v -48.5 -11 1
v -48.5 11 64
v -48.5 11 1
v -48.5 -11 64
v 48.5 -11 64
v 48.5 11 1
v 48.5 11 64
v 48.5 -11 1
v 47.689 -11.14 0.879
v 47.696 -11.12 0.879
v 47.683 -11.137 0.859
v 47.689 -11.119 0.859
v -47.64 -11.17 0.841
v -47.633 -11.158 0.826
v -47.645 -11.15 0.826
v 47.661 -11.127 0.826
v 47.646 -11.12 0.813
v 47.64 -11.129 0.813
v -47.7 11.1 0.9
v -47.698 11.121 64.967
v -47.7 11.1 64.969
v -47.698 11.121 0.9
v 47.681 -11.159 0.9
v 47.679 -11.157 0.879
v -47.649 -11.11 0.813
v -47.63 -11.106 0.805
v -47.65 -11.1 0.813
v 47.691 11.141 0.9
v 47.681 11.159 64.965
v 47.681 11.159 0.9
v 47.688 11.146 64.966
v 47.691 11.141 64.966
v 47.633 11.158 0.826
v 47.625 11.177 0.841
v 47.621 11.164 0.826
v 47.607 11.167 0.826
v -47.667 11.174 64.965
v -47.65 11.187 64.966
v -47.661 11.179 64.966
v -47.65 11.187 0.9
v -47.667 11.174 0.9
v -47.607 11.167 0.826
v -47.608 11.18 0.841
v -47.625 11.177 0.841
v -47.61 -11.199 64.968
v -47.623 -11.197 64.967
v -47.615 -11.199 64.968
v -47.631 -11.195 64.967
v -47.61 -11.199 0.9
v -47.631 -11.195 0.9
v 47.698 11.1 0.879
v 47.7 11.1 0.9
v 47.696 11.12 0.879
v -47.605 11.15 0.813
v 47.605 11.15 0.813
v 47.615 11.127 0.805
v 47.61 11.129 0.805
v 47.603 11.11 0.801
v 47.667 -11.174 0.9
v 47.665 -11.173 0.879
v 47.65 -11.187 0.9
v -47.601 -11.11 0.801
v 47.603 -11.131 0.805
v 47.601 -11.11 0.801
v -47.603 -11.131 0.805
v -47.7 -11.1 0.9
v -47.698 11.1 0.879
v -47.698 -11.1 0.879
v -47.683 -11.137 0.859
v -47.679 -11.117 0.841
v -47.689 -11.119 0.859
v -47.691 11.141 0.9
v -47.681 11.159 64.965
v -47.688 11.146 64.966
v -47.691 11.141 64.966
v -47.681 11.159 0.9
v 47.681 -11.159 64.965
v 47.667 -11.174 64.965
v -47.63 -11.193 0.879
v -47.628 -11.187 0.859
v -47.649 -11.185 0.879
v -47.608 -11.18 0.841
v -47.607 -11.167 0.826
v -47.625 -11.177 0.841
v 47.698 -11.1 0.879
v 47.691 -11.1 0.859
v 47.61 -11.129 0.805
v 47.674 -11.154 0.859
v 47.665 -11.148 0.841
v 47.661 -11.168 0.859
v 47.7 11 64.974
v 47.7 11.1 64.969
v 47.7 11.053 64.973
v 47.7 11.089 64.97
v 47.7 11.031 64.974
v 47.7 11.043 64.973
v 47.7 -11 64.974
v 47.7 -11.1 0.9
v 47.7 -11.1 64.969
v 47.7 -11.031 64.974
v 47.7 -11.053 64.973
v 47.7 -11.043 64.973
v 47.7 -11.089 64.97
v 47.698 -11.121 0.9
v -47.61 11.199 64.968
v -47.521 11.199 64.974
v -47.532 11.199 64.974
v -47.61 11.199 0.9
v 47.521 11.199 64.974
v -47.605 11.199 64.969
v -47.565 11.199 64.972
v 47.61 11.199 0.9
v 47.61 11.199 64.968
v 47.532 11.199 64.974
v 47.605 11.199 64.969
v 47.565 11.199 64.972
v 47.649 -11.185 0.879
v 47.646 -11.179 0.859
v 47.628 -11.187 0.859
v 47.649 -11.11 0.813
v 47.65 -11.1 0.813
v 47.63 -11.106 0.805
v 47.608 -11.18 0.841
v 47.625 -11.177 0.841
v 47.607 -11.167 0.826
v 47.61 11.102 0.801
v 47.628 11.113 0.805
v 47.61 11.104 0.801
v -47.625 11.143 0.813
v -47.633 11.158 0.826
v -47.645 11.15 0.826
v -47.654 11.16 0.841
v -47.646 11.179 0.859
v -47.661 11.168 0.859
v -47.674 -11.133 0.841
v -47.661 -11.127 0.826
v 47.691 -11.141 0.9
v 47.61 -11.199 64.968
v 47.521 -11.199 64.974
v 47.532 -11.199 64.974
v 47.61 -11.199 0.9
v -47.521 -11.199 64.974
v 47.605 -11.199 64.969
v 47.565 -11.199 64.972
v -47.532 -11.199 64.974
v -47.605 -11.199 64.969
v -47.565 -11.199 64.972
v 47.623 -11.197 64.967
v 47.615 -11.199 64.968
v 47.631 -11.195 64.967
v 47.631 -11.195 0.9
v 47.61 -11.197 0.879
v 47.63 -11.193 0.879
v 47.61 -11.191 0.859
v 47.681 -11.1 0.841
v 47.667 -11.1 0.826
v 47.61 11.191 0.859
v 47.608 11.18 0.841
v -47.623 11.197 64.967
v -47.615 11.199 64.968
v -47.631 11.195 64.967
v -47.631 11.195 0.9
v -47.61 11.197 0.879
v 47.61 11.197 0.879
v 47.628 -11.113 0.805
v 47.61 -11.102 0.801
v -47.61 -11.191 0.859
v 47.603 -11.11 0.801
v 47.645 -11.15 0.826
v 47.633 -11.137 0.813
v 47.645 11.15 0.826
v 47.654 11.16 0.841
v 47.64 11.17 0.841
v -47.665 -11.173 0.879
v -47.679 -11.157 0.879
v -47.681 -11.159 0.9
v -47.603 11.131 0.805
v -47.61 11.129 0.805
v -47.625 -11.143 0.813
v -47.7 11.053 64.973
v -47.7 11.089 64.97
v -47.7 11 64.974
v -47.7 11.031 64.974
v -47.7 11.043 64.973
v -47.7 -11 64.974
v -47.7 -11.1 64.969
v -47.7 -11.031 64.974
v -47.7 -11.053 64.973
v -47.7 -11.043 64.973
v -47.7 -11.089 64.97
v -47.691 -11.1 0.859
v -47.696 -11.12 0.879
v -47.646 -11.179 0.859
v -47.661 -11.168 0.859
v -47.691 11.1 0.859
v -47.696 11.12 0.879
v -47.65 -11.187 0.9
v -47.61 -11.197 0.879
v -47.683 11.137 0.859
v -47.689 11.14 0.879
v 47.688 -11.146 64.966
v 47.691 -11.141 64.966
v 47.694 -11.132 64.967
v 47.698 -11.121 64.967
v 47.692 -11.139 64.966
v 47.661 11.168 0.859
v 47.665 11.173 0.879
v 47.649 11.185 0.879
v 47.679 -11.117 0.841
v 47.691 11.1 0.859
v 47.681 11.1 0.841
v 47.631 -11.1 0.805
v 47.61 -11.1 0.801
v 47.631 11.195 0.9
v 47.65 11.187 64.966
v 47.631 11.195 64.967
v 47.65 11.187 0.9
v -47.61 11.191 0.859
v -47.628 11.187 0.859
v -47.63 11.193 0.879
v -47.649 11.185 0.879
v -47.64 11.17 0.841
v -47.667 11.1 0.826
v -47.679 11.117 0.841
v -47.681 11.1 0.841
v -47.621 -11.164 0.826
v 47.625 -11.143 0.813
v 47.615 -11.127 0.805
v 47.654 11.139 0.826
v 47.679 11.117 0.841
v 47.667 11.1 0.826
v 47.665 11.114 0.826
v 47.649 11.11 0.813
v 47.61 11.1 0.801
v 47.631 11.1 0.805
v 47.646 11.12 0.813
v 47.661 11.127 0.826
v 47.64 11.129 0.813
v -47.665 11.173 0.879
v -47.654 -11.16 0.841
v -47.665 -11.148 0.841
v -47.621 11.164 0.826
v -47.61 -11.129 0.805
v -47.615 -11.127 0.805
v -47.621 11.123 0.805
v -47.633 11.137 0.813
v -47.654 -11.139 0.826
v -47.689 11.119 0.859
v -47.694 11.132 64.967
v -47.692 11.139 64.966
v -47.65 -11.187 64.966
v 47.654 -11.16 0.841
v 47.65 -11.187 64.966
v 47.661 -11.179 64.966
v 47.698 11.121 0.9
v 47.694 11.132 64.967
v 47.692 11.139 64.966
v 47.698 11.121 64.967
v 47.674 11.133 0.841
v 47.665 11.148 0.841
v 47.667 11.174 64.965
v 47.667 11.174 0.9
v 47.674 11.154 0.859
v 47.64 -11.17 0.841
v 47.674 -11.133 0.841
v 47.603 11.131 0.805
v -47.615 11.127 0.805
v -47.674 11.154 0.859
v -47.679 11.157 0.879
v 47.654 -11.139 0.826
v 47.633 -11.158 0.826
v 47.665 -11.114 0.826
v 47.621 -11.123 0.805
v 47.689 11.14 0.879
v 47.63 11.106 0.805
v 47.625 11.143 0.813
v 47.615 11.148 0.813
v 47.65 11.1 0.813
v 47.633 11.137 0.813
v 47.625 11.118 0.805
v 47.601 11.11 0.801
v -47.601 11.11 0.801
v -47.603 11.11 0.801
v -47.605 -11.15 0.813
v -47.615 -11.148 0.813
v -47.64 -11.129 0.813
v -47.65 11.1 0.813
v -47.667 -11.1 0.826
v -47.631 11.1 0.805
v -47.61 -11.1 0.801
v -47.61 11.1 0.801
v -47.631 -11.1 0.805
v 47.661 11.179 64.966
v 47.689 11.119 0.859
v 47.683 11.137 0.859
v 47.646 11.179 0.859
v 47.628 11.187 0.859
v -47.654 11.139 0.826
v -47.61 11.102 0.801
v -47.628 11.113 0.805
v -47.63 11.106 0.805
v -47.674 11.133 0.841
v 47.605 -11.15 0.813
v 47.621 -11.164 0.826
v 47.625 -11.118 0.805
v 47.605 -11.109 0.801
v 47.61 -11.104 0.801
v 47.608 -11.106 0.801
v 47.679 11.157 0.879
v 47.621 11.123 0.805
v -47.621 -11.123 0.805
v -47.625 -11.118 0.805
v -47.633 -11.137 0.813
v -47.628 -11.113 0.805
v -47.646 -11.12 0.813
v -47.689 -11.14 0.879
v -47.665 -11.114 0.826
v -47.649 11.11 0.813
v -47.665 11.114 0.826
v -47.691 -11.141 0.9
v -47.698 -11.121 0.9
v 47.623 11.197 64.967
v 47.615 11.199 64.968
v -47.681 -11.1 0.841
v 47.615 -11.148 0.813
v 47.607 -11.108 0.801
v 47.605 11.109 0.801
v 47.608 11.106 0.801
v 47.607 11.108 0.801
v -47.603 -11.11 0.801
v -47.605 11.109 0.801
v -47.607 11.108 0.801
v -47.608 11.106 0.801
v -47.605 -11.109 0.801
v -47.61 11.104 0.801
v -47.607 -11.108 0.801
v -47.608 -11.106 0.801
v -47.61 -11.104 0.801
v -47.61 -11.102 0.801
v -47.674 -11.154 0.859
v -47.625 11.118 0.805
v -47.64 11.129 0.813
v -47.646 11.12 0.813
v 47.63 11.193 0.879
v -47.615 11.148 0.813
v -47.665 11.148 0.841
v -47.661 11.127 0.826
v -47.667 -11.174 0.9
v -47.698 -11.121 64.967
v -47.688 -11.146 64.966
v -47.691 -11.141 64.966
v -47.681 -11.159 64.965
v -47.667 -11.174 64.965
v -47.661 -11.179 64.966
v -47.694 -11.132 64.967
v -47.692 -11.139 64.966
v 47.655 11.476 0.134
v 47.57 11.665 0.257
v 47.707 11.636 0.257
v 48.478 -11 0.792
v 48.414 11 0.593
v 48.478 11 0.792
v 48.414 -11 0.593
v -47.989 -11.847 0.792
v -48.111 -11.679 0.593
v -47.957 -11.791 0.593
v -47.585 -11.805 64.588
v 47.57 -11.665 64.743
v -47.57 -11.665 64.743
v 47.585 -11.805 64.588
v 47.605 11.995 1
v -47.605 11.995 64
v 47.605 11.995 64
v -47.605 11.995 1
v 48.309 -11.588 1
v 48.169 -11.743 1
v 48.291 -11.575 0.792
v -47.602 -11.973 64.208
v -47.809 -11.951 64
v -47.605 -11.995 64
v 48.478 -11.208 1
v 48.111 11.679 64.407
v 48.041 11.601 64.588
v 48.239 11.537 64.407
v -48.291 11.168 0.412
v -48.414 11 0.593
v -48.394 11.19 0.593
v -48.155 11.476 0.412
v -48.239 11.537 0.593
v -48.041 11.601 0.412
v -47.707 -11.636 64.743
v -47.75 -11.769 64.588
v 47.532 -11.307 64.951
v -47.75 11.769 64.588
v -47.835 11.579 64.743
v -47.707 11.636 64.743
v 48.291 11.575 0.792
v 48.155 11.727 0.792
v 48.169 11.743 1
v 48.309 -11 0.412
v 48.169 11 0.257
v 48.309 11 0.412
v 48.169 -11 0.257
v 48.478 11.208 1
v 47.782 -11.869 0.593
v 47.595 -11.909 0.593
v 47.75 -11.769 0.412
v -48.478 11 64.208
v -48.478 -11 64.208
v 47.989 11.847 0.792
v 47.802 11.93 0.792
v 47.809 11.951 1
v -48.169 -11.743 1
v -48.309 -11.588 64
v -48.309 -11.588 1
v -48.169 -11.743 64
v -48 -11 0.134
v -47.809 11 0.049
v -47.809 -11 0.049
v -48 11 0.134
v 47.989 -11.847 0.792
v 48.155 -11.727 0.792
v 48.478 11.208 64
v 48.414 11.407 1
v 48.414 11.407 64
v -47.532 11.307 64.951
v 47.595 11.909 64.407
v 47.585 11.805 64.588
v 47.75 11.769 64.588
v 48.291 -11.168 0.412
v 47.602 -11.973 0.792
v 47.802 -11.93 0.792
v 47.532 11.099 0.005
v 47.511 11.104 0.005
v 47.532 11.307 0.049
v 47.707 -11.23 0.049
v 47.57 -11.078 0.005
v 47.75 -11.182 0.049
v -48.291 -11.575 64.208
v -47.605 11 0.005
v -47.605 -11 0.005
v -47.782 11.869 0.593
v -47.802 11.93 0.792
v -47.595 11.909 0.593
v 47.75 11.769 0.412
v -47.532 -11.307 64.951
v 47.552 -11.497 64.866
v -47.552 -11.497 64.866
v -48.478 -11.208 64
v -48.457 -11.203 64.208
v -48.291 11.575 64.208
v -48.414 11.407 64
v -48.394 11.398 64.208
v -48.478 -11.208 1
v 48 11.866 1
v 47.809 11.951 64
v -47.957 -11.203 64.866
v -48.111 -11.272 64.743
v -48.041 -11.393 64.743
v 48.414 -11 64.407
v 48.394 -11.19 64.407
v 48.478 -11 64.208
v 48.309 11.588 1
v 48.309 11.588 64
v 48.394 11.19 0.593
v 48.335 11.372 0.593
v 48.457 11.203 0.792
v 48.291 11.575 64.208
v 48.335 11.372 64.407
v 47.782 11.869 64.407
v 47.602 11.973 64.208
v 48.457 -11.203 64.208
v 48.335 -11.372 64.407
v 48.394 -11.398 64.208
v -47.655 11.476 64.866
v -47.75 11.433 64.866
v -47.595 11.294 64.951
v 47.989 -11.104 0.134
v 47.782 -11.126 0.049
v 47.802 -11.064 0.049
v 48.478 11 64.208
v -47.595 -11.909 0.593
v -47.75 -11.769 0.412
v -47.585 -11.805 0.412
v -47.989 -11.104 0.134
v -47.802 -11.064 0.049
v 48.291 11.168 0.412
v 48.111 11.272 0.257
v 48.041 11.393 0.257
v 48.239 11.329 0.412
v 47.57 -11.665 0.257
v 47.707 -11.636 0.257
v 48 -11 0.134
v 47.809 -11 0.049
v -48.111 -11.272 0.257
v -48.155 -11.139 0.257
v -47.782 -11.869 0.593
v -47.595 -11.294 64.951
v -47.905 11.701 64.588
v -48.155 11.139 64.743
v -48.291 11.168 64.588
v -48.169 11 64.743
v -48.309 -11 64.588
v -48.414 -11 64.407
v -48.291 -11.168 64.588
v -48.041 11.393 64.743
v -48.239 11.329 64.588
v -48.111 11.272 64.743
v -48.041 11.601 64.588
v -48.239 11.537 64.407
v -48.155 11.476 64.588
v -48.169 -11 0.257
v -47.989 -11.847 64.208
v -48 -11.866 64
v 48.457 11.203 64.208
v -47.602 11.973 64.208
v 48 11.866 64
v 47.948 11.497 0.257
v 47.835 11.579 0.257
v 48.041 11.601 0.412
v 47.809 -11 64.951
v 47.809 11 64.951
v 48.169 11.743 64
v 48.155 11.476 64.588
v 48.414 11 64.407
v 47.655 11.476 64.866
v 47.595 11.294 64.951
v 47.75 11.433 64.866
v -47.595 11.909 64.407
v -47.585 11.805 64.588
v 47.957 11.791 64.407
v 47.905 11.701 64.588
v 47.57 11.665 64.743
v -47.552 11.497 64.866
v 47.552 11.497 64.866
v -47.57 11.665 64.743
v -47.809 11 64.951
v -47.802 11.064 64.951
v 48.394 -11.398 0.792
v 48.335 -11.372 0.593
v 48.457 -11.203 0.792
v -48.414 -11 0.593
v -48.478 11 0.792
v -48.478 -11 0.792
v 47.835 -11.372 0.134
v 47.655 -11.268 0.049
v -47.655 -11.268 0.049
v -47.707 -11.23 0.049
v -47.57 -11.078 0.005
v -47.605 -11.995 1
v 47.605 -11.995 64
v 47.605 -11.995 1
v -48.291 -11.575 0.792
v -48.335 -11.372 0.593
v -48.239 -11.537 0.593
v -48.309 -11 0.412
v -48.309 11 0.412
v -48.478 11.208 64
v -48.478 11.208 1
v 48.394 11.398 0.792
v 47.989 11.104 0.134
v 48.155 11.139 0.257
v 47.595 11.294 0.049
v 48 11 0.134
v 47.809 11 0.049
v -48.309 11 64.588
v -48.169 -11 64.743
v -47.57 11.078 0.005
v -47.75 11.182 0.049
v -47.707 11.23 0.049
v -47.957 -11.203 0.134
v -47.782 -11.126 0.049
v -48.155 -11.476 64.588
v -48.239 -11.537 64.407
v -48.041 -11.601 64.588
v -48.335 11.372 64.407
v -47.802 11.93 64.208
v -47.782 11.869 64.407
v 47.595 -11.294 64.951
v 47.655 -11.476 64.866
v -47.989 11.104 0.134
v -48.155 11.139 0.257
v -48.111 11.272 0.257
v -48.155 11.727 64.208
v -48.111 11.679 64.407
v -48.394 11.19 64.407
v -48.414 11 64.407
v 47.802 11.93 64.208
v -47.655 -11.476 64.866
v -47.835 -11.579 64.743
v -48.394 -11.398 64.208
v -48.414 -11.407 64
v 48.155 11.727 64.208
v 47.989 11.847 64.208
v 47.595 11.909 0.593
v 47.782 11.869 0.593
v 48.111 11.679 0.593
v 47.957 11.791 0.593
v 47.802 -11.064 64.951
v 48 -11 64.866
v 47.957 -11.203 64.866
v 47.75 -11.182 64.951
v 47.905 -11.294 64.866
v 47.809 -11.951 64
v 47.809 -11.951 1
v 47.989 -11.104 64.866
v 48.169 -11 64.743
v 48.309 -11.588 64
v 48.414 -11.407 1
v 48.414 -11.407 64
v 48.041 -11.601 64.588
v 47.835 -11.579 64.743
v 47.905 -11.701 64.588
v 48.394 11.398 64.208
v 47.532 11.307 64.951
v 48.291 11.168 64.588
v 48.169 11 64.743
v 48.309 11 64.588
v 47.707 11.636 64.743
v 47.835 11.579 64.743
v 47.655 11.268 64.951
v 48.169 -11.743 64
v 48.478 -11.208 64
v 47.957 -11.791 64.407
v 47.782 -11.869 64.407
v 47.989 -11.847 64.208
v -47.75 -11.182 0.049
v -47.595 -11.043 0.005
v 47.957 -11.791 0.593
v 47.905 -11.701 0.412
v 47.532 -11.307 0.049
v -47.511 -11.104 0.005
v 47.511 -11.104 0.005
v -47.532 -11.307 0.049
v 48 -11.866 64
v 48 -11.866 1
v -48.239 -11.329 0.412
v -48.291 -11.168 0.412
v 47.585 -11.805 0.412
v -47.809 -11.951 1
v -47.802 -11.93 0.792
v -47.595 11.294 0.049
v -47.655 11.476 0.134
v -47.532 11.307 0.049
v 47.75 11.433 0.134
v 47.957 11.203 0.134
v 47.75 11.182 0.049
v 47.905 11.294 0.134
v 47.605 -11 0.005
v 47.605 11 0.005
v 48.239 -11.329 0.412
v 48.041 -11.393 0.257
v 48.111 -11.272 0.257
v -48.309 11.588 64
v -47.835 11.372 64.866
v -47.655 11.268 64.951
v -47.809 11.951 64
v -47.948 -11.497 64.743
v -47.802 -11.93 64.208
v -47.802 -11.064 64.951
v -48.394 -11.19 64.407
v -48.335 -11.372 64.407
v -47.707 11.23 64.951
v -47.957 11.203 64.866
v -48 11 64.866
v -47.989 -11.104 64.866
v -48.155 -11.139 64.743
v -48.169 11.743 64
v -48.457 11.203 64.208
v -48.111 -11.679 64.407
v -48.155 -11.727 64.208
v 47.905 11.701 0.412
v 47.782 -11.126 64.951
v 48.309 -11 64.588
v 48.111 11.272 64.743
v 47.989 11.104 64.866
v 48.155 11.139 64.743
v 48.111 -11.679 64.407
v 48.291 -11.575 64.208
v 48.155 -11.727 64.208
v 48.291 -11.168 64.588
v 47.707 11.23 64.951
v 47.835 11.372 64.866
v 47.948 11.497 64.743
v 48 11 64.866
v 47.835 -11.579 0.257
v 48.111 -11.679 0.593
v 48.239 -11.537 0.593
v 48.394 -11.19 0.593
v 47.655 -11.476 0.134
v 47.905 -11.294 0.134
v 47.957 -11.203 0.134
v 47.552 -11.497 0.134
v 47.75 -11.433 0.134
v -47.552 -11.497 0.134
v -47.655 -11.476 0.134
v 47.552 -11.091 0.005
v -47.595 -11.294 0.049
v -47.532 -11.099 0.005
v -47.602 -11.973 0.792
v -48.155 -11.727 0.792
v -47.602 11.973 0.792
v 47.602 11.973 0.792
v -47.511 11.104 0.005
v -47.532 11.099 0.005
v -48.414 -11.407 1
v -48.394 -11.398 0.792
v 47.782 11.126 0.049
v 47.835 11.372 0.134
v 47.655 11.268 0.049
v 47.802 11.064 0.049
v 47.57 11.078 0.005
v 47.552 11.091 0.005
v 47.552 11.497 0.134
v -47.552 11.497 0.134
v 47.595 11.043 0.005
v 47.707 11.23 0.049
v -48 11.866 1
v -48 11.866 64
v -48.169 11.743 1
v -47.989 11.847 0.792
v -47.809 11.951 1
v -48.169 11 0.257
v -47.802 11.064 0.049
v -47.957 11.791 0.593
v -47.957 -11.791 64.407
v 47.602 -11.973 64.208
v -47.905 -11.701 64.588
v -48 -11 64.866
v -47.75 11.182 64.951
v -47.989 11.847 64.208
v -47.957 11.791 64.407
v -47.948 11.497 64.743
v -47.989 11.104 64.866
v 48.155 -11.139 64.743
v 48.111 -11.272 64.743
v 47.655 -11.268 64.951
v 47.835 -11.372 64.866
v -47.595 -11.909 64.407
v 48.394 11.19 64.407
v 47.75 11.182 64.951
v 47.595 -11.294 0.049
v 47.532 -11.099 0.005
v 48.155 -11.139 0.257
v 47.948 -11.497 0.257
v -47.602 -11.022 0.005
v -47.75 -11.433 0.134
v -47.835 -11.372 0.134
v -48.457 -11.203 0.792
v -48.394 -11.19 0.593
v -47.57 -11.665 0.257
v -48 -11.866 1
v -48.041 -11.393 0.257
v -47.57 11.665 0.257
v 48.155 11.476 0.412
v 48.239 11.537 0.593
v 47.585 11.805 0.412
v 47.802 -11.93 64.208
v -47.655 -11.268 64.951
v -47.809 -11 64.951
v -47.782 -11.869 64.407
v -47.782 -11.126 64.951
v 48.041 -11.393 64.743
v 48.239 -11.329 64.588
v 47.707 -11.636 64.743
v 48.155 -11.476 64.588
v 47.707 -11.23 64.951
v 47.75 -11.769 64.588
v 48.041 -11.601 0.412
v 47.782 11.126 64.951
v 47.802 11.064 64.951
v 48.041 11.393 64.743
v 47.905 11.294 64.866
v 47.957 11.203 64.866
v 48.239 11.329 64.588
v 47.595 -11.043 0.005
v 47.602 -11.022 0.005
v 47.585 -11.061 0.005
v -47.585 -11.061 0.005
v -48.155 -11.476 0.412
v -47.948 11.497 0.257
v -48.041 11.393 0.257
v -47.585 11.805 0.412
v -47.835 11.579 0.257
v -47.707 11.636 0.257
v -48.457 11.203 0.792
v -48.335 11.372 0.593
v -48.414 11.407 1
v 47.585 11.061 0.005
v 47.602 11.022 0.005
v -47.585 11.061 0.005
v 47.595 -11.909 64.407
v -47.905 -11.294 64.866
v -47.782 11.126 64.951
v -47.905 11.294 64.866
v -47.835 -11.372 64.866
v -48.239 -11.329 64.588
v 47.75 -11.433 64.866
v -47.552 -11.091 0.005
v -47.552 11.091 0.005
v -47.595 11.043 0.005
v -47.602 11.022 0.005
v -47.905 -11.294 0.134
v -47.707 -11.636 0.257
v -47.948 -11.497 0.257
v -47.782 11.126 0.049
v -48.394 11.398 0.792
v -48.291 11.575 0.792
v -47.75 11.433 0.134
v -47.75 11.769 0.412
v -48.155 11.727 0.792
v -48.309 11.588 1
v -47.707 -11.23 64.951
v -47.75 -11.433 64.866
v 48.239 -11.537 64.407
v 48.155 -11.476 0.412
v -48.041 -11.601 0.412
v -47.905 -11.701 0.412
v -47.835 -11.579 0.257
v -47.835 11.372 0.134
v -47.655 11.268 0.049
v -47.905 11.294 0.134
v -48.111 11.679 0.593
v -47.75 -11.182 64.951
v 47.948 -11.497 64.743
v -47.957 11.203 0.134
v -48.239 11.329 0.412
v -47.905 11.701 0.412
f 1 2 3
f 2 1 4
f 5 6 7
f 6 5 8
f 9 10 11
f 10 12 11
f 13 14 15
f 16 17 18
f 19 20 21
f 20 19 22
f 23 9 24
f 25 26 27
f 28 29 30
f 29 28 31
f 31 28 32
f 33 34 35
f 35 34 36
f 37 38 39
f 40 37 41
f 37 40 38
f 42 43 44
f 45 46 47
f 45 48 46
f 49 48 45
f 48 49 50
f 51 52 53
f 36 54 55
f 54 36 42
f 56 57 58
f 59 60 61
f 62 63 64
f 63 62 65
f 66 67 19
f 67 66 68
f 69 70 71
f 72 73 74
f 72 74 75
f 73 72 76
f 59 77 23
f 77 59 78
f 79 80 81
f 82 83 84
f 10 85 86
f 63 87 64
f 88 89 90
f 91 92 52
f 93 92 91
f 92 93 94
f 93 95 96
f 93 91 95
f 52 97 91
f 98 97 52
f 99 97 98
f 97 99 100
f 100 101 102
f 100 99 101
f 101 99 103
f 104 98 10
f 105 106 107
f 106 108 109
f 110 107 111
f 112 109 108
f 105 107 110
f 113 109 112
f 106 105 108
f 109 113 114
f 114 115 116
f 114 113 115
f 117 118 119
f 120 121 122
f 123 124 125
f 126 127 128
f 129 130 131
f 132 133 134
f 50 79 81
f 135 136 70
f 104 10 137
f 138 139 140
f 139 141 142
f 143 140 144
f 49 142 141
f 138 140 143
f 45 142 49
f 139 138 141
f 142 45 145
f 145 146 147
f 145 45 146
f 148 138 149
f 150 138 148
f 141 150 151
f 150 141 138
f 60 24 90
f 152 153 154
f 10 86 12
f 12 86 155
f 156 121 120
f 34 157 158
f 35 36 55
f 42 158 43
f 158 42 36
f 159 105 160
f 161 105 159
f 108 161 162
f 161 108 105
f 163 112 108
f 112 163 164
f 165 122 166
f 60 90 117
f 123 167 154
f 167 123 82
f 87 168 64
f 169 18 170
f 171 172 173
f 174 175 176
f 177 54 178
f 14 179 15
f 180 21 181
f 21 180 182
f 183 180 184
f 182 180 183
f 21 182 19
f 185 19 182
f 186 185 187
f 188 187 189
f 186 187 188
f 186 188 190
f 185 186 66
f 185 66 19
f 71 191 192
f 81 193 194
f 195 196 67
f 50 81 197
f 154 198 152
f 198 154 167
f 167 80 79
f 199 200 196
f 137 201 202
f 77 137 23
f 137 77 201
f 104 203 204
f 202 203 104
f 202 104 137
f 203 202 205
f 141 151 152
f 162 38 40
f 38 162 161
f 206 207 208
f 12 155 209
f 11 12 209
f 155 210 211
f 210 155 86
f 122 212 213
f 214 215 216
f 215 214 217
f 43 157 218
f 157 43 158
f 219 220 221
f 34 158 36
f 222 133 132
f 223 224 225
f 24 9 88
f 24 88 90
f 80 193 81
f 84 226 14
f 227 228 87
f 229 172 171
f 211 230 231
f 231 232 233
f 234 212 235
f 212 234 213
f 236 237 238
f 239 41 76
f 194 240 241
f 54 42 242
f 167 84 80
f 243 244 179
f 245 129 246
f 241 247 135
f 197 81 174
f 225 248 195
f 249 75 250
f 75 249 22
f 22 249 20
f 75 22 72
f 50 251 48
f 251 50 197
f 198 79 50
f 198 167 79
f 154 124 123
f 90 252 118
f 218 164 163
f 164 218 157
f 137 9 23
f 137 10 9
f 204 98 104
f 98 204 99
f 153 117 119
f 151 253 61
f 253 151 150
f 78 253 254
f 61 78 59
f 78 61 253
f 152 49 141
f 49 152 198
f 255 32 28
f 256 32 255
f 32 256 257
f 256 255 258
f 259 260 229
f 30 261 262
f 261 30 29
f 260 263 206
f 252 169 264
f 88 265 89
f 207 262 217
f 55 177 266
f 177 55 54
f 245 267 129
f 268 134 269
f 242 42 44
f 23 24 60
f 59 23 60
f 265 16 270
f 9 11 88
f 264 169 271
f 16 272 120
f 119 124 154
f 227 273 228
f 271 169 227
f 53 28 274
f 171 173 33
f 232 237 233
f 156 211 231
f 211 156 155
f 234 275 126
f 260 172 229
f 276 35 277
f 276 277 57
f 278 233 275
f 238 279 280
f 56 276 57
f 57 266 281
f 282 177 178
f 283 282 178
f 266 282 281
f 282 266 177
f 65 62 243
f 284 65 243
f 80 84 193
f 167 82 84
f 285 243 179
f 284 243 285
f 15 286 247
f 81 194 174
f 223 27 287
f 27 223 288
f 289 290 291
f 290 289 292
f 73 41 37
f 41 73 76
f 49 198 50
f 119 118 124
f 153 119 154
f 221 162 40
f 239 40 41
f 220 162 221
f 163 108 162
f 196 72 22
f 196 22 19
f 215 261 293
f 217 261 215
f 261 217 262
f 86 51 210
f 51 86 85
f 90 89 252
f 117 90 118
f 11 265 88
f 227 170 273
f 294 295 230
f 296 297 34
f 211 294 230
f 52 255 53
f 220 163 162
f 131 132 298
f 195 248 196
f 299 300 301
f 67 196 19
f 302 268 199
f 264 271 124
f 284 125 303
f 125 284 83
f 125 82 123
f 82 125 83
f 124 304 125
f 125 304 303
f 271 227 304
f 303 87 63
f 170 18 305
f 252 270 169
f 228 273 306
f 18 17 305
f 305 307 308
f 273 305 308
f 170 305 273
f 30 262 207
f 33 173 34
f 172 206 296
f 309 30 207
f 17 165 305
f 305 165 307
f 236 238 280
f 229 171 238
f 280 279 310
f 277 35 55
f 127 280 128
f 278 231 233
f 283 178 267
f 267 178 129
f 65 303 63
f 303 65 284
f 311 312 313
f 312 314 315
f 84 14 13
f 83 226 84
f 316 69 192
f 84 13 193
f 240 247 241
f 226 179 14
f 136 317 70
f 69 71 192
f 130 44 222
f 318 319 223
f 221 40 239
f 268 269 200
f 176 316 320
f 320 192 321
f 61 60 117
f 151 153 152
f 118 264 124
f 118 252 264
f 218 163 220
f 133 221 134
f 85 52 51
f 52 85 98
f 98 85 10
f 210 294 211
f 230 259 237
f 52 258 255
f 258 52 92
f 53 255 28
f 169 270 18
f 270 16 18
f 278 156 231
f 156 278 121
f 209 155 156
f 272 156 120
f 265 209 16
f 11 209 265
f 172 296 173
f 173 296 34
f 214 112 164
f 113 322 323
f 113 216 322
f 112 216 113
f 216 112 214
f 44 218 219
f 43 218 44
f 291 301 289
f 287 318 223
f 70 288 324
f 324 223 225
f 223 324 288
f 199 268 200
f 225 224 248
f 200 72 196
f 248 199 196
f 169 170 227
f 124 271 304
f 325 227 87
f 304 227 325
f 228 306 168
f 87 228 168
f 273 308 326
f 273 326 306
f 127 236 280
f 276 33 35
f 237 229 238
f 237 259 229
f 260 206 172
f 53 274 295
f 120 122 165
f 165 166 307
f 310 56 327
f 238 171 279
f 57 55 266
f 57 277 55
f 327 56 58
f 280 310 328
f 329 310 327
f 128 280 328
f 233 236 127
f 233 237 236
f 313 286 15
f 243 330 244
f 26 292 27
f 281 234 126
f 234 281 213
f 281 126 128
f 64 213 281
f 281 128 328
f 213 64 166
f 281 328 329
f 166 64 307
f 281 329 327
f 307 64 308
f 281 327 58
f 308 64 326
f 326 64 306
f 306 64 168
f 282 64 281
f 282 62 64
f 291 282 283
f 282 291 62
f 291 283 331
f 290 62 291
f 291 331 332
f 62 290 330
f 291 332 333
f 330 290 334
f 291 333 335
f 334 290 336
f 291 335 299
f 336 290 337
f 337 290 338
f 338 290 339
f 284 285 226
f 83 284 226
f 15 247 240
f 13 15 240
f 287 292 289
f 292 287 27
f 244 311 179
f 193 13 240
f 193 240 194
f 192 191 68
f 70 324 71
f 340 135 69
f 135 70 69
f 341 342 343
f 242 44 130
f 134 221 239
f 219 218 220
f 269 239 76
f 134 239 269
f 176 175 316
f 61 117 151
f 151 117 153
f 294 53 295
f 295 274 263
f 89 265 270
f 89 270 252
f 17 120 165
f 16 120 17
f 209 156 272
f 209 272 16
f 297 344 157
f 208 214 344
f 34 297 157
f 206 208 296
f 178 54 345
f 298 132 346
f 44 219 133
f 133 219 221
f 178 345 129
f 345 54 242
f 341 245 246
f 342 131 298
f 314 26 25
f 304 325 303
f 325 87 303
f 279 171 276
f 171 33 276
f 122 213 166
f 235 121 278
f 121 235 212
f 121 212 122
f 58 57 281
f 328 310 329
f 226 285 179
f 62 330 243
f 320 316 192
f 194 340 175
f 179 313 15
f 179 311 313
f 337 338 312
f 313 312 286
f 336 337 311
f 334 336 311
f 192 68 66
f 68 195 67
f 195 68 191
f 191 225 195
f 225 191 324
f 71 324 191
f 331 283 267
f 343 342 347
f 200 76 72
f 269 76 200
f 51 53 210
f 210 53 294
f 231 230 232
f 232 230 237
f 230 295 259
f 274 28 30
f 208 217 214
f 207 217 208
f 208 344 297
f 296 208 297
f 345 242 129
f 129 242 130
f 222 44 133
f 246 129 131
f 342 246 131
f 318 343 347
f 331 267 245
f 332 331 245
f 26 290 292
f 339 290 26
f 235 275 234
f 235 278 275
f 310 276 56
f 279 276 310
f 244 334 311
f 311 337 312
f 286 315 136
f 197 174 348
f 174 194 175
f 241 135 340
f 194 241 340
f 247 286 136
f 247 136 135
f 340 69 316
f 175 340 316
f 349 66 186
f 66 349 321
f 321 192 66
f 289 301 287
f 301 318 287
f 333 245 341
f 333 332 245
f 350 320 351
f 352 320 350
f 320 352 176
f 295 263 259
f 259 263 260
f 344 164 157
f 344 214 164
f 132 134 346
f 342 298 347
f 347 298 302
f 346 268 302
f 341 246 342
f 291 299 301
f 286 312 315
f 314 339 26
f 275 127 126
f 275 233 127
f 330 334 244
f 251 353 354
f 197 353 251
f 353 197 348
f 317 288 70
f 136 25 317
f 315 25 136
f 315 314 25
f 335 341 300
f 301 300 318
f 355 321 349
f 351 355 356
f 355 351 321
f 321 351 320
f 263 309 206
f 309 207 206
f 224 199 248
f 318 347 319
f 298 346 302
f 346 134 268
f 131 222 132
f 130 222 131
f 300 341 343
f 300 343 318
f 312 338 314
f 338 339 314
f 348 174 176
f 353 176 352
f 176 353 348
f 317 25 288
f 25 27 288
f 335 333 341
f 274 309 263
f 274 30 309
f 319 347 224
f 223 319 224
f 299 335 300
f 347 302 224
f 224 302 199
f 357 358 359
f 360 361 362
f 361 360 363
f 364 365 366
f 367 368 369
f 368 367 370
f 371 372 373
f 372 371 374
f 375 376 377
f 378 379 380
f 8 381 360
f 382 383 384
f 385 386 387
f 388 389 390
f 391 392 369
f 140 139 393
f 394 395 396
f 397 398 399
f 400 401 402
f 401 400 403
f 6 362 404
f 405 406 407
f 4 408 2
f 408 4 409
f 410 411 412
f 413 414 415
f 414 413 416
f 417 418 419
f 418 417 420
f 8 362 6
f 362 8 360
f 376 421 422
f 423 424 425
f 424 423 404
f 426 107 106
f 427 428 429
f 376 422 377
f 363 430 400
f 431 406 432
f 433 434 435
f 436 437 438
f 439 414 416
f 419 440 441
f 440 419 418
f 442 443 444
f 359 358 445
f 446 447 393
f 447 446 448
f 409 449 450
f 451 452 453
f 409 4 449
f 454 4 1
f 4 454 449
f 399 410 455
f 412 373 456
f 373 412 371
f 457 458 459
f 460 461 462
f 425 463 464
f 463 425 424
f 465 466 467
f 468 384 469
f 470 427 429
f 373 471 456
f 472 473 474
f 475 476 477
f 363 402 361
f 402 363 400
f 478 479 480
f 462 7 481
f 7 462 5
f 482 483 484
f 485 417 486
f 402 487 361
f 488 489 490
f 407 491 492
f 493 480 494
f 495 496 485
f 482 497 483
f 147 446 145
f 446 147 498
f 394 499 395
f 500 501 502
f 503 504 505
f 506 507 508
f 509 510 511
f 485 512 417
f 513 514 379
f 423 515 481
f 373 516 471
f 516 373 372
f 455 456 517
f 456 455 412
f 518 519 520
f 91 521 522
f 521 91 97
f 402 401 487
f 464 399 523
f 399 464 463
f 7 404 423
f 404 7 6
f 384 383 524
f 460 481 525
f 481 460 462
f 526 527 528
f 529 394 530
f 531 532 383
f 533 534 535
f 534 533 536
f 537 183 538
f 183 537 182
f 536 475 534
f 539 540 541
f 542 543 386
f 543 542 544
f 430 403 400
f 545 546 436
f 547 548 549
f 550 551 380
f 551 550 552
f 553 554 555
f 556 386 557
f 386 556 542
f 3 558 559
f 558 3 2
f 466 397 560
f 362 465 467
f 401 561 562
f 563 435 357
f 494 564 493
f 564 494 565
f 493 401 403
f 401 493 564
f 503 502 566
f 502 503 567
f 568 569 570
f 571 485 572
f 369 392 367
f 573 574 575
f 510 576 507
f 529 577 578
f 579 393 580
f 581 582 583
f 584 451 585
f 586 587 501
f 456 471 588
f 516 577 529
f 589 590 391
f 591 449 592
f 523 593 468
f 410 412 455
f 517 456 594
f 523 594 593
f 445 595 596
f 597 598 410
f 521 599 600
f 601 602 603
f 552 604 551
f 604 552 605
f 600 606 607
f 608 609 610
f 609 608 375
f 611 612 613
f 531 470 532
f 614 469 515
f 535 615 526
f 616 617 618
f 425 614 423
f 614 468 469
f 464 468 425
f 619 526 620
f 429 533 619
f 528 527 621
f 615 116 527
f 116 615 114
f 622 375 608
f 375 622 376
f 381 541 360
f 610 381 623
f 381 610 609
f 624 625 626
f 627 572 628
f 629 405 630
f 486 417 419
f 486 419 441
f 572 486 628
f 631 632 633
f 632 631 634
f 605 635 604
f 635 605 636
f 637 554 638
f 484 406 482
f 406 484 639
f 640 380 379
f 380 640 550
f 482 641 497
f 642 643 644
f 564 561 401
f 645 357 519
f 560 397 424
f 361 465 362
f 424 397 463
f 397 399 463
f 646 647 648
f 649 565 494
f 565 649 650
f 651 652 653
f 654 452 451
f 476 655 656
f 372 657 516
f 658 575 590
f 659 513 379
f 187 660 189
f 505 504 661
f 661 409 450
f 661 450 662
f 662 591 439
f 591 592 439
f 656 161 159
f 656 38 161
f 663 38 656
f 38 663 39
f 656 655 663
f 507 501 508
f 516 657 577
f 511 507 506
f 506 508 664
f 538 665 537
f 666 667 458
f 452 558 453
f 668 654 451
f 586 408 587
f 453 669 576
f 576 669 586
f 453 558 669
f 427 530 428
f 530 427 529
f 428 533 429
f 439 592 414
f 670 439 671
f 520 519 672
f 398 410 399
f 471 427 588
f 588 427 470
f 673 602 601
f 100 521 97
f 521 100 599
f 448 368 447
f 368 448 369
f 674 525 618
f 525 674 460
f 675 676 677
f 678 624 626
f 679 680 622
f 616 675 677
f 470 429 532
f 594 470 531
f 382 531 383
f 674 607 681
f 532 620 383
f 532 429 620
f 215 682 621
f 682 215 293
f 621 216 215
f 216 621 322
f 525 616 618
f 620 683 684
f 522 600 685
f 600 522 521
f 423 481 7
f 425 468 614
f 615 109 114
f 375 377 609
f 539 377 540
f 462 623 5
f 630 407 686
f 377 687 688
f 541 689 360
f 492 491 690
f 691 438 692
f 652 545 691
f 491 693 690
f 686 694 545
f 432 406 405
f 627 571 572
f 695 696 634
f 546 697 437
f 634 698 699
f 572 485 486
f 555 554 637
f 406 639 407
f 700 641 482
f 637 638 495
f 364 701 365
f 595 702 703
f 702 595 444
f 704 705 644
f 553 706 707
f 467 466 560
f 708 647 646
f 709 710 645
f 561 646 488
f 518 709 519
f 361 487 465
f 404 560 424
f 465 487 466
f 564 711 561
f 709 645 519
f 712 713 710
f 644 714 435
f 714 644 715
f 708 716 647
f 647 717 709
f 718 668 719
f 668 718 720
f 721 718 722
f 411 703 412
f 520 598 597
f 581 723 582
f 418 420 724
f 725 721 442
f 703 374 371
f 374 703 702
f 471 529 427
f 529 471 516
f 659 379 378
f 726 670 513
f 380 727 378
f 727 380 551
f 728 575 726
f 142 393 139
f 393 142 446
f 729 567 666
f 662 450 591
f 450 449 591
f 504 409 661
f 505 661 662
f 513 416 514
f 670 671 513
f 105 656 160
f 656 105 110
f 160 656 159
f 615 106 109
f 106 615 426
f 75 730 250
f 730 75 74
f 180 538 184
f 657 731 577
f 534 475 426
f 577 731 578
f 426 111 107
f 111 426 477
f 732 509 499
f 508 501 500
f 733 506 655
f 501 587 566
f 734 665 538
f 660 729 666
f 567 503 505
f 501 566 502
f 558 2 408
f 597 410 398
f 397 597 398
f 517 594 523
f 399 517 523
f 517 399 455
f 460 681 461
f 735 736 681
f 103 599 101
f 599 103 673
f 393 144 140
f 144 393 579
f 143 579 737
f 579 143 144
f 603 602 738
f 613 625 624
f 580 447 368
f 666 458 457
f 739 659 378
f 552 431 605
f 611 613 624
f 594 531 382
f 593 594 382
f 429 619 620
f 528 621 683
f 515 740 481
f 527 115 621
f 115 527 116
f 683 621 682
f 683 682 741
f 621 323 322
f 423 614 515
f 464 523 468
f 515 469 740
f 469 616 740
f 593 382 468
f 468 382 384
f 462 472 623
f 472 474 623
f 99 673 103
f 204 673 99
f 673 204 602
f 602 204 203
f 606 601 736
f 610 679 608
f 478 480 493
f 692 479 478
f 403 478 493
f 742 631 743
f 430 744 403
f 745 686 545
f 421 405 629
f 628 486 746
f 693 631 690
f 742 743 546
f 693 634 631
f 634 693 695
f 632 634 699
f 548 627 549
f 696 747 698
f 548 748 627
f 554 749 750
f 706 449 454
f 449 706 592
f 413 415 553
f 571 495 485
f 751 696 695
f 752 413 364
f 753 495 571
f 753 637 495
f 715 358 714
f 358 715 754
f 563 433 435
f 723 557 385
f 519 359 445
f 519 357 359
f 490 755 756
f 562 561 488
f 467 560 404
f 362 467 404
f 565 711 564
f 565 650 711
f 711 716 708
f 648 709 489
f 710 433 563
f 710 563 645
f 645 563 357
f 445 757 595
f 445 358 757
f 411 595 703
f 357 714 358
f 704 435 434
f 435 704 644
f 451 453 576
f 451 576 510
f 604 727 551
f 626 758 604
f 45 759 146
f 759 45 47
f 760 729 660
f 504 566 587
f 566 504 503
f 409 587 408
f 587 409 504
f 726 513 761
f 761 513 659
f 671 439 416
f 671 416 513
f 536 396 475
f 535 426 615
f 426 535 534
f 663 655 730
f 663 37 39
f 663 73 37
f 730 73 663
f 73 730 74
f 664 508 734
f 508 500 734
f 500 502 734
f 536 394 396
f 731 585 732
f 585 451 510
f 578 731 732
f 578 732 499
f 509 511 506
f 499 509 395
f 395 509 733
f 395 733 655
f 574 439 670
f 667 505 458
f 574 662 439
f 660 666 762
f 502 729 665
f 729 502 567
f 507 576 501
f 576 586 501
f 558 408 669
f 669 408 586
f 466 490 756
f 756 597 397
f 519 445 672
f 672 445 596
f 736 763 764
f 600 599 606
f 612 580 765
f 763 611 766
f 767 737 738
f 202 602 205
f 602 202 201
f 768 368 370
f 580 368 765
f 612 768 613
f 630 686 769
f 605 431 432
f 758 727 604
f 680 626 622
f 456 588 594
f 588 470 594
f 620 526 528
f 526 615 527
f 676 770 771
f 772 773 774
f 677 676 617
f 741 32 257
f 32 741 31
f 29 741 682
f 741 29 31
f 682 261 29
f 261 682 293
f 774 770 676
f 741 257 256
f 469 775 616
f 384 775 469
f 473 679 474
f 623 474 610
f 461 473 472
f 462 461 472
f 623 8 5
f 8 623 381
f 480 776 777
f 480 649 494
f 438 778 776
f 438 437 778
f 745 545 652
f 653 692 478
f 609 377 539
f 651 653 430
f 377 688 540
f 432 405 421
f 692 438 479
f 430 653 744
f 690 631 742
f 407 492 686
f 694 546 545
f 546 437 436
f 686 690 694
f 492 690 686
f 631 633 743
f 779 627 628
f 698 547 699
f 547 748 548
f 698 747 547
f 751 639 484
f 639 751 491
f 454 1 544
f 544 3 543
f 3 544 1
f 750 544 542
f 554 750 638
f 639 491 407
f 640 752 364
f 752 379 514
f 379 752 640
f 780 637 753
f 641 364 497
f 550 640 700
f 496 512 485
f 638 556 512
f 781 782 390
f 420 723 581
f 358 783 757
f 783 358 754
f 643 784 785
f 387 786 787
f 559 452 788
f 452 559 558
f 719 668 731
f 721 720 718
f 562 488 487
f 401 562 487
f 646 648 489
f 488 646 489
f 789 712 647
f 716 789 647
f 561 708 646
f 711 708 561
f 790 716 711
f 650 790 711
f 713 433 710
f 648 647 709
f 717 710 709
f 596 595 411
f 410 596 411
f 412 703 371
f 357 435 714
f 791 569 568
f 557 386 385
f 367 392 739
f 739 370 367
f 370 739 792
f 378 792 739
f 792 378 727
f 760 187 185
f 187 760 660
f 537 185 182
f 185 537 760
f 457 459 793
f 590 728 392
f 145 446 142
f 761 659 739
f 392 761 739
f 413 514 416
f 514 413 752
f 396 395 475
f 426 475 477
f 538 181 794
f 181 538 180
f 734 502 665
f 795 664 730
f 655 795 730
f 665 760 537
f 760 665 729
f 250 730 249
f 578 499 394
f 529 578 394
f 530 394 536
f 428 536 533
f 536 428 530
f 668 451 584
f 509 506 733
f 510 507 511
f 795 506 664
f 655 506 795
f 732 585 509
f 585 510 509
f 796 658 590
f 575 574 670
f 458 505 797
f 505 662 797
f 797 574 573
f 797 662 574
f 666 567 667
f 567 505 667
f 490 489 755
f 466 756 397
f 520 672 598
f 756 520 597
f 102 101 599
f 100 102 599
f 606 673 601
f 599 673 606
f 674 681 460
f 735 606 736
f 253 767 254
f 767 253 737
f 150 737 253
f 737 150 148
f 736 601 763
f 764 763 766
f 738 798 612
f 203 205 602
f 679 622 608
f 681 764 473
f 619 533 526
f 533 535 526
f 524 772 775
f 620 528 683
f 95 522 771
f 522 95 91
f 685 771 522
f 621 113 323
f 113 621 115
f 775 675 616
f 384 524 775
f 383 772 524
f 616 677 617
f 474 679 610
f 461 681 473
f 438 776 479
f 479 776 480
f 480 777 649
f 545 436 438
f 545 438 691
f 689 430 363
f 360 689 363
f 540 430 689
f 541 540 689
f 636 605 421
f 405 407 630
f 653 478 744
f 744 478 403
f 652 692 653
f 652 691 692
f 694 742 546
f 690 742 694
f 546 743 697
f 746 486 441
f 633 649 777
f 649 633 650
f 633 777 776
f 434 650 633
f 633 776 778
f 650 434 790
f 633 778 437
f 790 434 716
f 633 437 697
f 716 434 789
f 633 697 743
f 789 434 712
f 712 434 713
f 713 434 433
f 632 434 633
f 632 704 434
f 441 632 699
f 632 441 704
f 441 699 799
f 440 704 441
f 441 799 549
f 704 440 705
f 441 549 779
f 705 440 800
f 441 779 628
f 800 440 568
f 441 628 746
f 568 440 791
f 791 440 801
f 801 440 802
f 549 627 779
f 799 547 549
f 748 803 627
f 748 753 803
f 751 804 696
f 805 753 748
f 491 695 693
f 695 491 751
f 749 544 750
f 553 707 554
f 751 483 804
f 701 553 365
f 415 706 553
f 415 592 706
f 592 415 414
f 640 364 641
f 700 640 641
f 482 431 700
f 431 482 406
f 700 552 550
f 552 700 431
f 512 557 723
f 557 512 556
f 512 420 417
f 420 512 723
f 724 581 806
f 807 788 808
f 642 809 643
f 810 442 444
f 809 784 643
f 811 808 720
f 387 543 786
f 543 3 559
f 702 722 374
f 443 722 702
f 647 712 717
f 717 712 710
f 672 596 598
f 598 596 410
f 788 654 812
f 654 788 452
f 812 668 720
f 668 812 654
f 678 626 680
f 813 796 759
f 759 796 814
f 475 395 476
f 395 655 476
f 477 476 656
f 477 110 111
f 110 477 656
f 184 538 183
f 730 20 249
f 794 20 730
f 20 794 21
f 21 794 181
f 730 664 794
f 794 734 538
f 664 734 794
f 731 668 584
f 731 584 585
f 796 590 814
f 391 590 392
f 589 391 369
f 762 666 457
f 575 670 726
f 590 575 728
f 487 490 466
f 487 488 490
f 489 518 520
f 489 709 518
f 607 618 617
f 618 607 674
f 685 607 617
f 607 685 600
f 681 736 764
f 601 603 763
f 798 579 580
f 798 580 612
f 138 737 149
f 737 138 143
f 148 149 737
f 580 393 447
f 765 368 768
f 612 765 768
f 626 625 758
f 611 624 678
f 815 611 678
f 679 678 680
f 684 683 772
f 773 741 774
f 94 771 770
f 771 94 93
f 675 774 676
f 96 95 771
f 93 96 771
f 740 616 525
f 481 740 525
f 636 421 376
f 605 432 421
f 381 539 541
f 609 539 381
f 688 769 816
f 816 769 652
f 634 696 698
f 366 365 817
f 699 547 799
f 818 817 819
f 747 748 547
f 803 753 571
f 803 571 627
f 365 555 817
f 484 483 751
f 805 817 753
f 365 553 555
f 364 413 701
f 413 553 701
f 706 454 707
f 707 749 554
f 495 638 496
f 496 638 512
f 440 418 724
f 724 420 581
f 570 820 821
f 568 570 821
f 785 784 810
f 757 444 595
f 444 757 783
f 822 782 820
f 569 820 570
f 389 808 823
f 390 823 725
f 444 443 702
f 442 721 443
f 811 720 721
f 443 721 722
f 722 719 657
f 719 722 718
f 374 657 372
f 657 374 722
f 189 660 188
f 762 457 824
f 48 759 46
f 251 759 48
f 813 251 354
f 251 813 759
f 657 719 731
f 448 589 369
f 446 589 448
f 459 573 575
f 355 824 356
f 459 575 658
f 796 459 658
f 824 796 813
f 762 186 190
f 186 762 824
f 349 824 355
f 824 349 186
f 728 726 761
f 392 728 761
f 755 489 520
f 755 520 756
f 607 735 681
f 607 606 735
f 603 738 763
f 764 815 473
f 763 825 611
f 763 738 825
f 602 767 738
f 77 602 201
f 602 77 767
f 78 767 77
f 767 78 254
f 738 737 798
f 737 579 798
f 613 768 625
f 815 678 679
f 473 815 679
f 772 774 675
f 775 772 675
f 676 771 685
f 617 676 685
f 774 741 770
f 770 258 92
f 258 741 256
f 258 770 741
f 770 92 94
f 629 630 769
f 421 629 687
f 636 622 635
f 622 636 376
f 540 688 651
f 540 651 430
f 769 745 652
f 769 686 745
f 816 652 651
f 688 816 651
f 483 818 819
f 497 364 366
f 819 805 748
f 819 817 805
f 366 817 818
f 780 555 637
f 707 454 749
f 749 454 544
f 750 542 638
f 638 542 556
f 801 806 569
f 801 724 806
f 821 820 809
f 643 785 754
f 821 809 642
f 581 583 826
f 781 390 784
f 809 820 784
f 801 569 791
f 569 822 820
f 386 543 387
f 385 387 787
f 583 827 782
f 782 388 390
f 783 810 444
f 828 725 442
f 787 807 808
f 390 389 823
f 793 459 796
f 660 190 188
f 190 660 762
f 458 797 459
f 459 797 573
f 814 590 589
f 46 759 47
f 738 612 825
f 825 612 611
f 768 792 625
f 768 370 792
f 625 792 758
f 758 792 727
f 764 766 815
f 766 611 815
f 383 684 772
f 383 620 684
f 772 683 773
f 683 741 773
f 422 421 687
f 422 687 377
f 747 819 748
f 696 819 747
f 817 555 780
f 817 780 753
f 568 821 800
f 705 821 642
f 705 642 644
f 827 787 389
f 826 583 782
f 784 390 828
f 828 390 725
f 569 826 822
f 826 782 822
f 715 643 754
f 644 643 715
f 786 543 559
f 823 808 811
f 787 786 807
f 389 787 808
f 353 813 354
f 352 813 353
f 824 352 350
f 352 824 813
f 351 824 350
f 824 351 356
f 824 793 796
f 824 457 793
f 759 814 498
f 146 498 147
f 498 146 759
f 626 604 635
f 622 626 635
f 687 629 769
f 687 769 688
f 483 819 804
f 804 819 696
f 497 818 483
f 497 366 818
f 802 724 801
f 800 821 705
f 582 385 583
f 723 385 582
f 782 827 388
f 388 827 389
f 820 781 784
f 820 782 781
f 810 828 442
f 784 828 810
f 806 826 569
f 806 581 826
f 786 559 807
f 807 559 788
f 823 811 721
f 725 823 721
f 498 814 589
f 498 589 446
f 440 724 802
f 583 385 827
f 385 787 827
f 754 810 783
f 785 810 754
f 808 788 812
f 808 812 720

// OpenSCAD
$fn=30;

/* [Global] */

// Render
Objects = "LidlessBox"; // [Both, Box, Lid, LidlessBox]

// use the following syntax to add 1 or more internal x compartment lengths (mm)
x_sizes = [95.4];
// use the following syntax to add 1 or more internal y compartment widths (mm)
y_sizes = [22.4];
// Total height including Lid (If Lidless, this is the final height)
z_size = 65;

// Type of lid pattern
gPattern = "Fancy"; //  [Hex, Diamond, Web, Solid, Fancy]
// Tolerance
gTol = 0.3;
// Wall Thickness
gWT = 0.8;
// Curvature bottom
ipR = 0.1;

/* [Spider Web] */
// Amount of space from one ring or webs to the next
WebSpacing = 5;
// How many rings of webs, best of more than needed
WebStrands = 20;
// Thickness of the strands
WedThickness = 1.8;
// How many segments of web
WebWedges = 12;


/* [Hidden] */
/* Private variables */

// Check if we are in Lidless mode
isLidless = (Objects == "LidlessBox");

// Box Height
TotalZ = z_size;
LidH = 2.2;
RailThick = 1.4;
RailWidth = LidH + RailThick;

function SumList(list, start, end) = (start == end) ? 0 : list[start] + SumList(list, start+1, end);

// Box Length
TotalX = SumList(x_sizes,0,len(x_sizes)) + gWT*(len(x_sizes)+1);

// Box Width - If lidless, we don't need the extra width for the sliding rails
TotalY = isLidless ? 
    SumList(y_sizes,0,len(y_sizes)) + gWT*(len(y_sizes)+1) : 
    SumList(y_sizes,0,len(y_sizes)) + RailWidth*2 + gWT*(len(y_sizes)-1);

echo("Size: ",TotalX,TotalY);
    
// Height not counting the lid. If lidless, height is the full z_size.
AdjBoxHeight = isLidless ? TotalZ : TotalZ - LidH;

 module regular_polygon(order, r=1){
 	angles=[ for (i = [0:order-1]) i*(360/order) ];
 	coords=[ for (th=angles) [r*cos(th), r*sin(th)] ];
 	polygon(coords);
 }

module circle_lattice(ipX, ipY, Spacing=10, Walls=1.2)  {


   intersection() {
      square([ipX,ipY]); 
      union() {
	    for (x=[-Spacing:Spacing:ipX+Spacing]) {
           for (y=[-Spacing:Spacing:ipY+Spacing]){
	          difference()  {
			     translate([x+Spacing/2, y+Spacing/2]) circle(r=Spacing*0.75);
			     translate([x+Spacing/2, y+Spacing/2]) circle(r=(Spacing*0.75)-Walls);
		      }
           }   // end for y        
	    }  // end for x
      } // End union
   }
}


module diamond_lattice(ipX, ipY, DSize, WSize)  {

   lOffset = DSize + WSize;

	difference()  {
		square([ipX, ipY]);
		for (x=[0:lOffset:ipX]) {
            for (y=[0:lOffset:ipY]){
  			   translate([x, y])  regular_polygon(4, r=DSize/2);
			   translate([x+lOffset/2, y+lOffset/2]) regular_polygon(4, r=DSize/2);
		    }
        }        
	}
}

module hex_lattice(ipX, ipY, DSize, WSize)  {
    lXOffset = DSize + WSize;
    lYOffset = (DSize+WSize)/cos(30) * 1.5;

	difference()  {
		square([ipX, ipY]);
		for (x=[0:lXOffset:ipX]) {
            for (y=[0:lYOffset:ipY]){
  			   translate([x, y]) rotate([0,0,30]) regular_polygon(6, r=DSize/cos(30)/2);
			   translate([x+lXOffset/2, y+lYOffset/2]) rotate([0,0,30]) regular_polygon(6, r=DSize/cos(30)/2);
		    }
        }  
	}
}

// Make a star with X points
module star(radius, wedges)
{
	angle = 360 / wedges;
	difference() {
		circle(radius, $fn = wedges);
		for(i = [0:wedges - 1]) {
			rotate(angle / 2 + angle * i) translate([radius, 0, 0]) 
			    scale([0.8, 1, 1]) 
				    circle(radius * sin(angle / 2), $fn = 24);
		}
	}
}

module spider_web(ipWebSpacing, strands, ipThickness, wedges) 
{
	for(i = [0:strands - 1]) 
    {
        difference() {
            star(ipWebSpacing * i, wedges);
            offset(r = -ipThickness) star(ipWebSpacing * i, wedges);
        }
	}

	angle = 360 / wedges;
	for(i = [0:wedges - 1])
    {
		rotate(angle * i) translate([0, -ipThickness / 2, 0]) 
			square([ipWebSpacing * strands, ipThickness]);
	}    
}


module RCube(x,y,z,ipR=ipR) {
    translate([-x/2,-y/2,0]) hull(){
      translate([ipR,ipR,ipR]) sphere(ipR);
      translate([x-ipR,ipR,ipR]) sphere(ipR);
      translate([ipR,y-ipR,ipR]) sphere(ipR);
      translate([x-ipR,y-ipR,ipR]) sphere(ipR);
      translate([ipR,ipR,z-ipR]) sphere(ipR);
      translate([x-ipR,ipR,z-ipR]) sphere(ipR);
      translate([ipR,y-ipR,z-ipR]) sphere(ipR);
      translate([x-ipR,y-ipR,z-ipR]) sphere(ipR);
      }  
} 


module lid(ipPattern = "Hex", ipTol = 0.3){
  lAdjX = TotalX;
  lAdjY = TotalY-RailWidth*2-ipTol*2;  
  lAdjZ = LidH;
  CutX = lAdjX - 8;
  CutY = lAdjY - 8;
  lFingerX = 15;
  lFingerY = 16;  

  // main square with center removed for a pattern. 0.01 addition is a kludge to avoid a 2d surface remainging when substracting the lid from the box.
  difference() {
      translate([0,0,lAdjZ/2]) cube([lAdjX+0.01, lAdjY+0.01 , lAdjZ], center=true);

      translate([0,0,lAdjZ/2]) cube([CutX, CutY, lAdjZ], center = true);
      translate([TotalX/2-gWT/2,0,LidH/2])cube([gWT+0.01,TotalY-RailWidth,LidH],center=true);

     // make a slot for the latch can flex          
     translate([TotalX/2,TotalY/2-RailWidth-1.4,-1]) RCube(18,0.8,4,0.4);
     translate([TotalX/2,-TotalY/2+RailWidth+1.4,-1]) RCube(18,0.8,4,0.4);
  }
  
  // The Side triangles
  difference() {
    intersection () {
      union () {
          translate([-lAdjX/2,-lAdjY/2-LidH,LidH]) rotate([0,90,0]) linear_extrude(TotalX-2) polygon([[LidH,0],[LidH,LidH],[0,LidH]], paths=[[0,1,2]]);
          translate([-lAdjX/2,lAdjY/2,LidH]) rotate([0,90,0]) linear_extrude(TotalX-2) polygon([[0,0],[LidH,0],[LidH,LidH]], paths=[[0,1,2]]);
      }
      
      // check if this is real lid (ipTol>0) or negative lid (iptol = 0)
      // if real lid remove center for pattern and remove latches
      if (ipTol>0) 
         {cube([lAdjX, lAdjY + 2*LidH-0.2, lAdjZ*2], center=true);}
    }
       
    if (ipTol>0)
    {
        // cut out slots for the latch 
        translate([TotalX/2-7,lAdjY/2+RailWidth/2+ipTol,LidH/2]) scale([1.5,1,1]) rotate([0,0,45]) cube ([2+ipTol,2+ipTol,LidH+1],center=true);
          
        translate([TotalX/2-7,-lAdjY/2-RailWidth/2-ipTol,LidH/2]) scale([1.5,1,1]) rotate([0,0,45]) cube ([2+ipTol,2+ipTol,LidH+1],center=true);
  
        // trip the rail to ease going past the nub
        translate([TotalX/2,TotalY/2-LidH/2-ipTol,0]) cube([12,LidH,LidH*2],center=true); 
        translate([TotalX/2,-TotalY/2+LidH/2+ipTol,0]) cube([12,LidH,LidH*2],center=true); 
    }
    
  }
 
  // Finger slot
  difference () {
      translate([-CutX/2,-lFingerY/2,0]) cube([lFingerX, lFingerY, lAdjZ]); 
      translate([-CutX/2+lFingerX/2,0,20+LidH/2])sphere(20);     
  }


  // Solid top
  if (ipPattern == "Solid") 
      {   
       difference (){ 
          translate([-CutX/2,-CutY/2,0]) cube([CutX, CutY,   lAdjZ]);
          translate([-CutX/2,-lFingerY/2,0]) cube([lFingerX, lFingerY, lAdjZ]); 
      }
    }
    

  // Spiderweb top
  if (ipPattern == "Web") 
    {
       difference (){ 
         intersection () 
        {    
             linear_extrude(height = lAdjZ) spider_web(WebSpacing, WebStrands, WedThickness, WebWedges);  
              translate([-CutX/2,-CutY/2,0]) cube([CutX, CutY, LidH*2]); 
        }
          translate([-CutX/2,-lFingerY/2,0]) cube([lFingerX, lFingerY, lAdjZ]); 
      }
    }

  // Hex top
  if (ipPattern == "Hex") 
    {   
       difference (){ 
          translate([-CutX/2,-CutY/2,0]) linear_extrude(height = lAdjZ) hex_lattice(CutX,CutY,6,2);
          translate([-CutX/2,-lFingerY/2,0]) cube([lFingerX, lFingerY, lAdjZ]); 
      }
    }

  // Diamond top
  if (ipPattern == "Diamond") 
    {
      difference (){ 
        translate([-CutX/2,-CutY/2,0]) linear_extrude(height = lAdjZ) diamond_lattice(CutX,CutY,7,2);
        translate([-CutX/2,-lFingerY/2,0]) cube([lFingerX, lFingerY, lAdjZ]); 
      }
    }

  // fancy top
  if (ipPattern == "Fancy") 
    {
       echo(CutX,CutY);
      difference (){ 
        translate([-CutX/2,-CutY/2,0]) linear_extrude(height = lAdjZ) circle_lattice(CutX,CutY);
        translate([-CutX/2,-lFingerY/2,0]) cube([lFingerX, lFingerY, lAdjZ]); 
      }
    }

}


module box () {
//  Main Box
  difference() {    
    translate ([0,0,AdjBoxHeight/2]) cube([TotalX,TotalY,AdjBoxHeight], center = true);

    // Scope out compartment areas
    for(nX=[0:len(x_sizes)-1])
    {
      for(nY=[0:len(y_sizes)-1])
      {
          xOffset = SumList(x_sizes,0,nX) + gWT*(nX+1) + x_sizes[nX]/2 - TotalX/2;
          
          // If lidless, we start from a standard wall thickness. If lidded, we start from RailWidth.
          yStart = isLidless ? gWT : RailWidth;
          yOffset = SumList(y_sizes,0,nY) + yStart + gWT*nY + y_sizes[nY]/2 - TotalY/2;
          
          translate([xOffset,yOffset,gWT]) RCube(x_sizes[nX], y_sizes[nY] ,AdjBoxHeight+20);
      }
    }
  }

  // Only render rails, backstops, and latches if NOT LidlessBox
  if (!isLidless) {
      // top rails
      difference() {
         union() {
              translate([0,-TotalY/2+RailWidth/2,AdjBoxHeight+LidH/2]) cube([TotalX,RailWidth,LidH],center = true);  
              translate([0,TotalY/2-RailWidth/2,AdjBoxHeight+LidH/2]) cube([TotalX,RailWidth,LidH],center = true);
               }
           
          // Trim each rail top to a 45 degree angle     
          translate([0,-TotalY/2,AdjBoxHeight+RailWidth]) rotate([45,0,0]) cube([TotalX,RailWidth+0.7,RailWidth+0.7], center=true); 
          translate([0,TotalY/2,AdjBoxHeight+RailWidth])  rotate([45,0,0]) cube([TotalX,RailWidth+0.7,RailWidth+0.7], center=true);  

          // Substract the lid from the rails
          translate([0,0,AdjBoxHeight]) lid(ipPattern = "Solid",ipTol =0);      
      }  
      
       // add backstop
       translate([TotalX/2-1/2,0,TotalZ-LidH/2])cube([1,TotalY-RailWidth,LidH],center=true);
      
      // create the latches 
        translate([TotalX/2-7,TotalY/2-0.1-RailWidth/2,TotalZ-LidH/2]) scale([1.5,1,1]) difference(){
          rotate([0,0,45]) cube ([2,2,LidH+1],center=true);
          translate([0,2,0]) cube ([4,4,LidH+2],center=true);
          translate([0,-2,0])cube([2,2,LidH+2], center=true);
          }  
        translate([TotalX/2-7,-TotalY/2+0.1+RailWidth/2,TotalZ-LidH/2]) scale([1.5,1,1]) difference(){
          rotate([0,0,45]) cube ([2,2,LidH+1],center=true);
          translate([0,-2,0]) cube ([4,4,LidH+2],center=true);
          translate([0,2,0])cube([2,2,LidH+2], center=true);
          }
  }
} 

// Production Box
if ((Objects == "Both") || (Objects == "Box") || (Objects == "LidlessBox")){
  intersection() {
     box();
     // Final container curvature cut
     RCube(TotalX,TotalY,AdjBoxHeight + (isLidless ? 0 : LidH),1);
  }
}

// Production Lid
if ((Objects == "Both")  || (Objects == "Lid")){
  translate([-TotalX - 10,0,0]) lid(ipPattern = gPattern, ipTol = gTol);
}
